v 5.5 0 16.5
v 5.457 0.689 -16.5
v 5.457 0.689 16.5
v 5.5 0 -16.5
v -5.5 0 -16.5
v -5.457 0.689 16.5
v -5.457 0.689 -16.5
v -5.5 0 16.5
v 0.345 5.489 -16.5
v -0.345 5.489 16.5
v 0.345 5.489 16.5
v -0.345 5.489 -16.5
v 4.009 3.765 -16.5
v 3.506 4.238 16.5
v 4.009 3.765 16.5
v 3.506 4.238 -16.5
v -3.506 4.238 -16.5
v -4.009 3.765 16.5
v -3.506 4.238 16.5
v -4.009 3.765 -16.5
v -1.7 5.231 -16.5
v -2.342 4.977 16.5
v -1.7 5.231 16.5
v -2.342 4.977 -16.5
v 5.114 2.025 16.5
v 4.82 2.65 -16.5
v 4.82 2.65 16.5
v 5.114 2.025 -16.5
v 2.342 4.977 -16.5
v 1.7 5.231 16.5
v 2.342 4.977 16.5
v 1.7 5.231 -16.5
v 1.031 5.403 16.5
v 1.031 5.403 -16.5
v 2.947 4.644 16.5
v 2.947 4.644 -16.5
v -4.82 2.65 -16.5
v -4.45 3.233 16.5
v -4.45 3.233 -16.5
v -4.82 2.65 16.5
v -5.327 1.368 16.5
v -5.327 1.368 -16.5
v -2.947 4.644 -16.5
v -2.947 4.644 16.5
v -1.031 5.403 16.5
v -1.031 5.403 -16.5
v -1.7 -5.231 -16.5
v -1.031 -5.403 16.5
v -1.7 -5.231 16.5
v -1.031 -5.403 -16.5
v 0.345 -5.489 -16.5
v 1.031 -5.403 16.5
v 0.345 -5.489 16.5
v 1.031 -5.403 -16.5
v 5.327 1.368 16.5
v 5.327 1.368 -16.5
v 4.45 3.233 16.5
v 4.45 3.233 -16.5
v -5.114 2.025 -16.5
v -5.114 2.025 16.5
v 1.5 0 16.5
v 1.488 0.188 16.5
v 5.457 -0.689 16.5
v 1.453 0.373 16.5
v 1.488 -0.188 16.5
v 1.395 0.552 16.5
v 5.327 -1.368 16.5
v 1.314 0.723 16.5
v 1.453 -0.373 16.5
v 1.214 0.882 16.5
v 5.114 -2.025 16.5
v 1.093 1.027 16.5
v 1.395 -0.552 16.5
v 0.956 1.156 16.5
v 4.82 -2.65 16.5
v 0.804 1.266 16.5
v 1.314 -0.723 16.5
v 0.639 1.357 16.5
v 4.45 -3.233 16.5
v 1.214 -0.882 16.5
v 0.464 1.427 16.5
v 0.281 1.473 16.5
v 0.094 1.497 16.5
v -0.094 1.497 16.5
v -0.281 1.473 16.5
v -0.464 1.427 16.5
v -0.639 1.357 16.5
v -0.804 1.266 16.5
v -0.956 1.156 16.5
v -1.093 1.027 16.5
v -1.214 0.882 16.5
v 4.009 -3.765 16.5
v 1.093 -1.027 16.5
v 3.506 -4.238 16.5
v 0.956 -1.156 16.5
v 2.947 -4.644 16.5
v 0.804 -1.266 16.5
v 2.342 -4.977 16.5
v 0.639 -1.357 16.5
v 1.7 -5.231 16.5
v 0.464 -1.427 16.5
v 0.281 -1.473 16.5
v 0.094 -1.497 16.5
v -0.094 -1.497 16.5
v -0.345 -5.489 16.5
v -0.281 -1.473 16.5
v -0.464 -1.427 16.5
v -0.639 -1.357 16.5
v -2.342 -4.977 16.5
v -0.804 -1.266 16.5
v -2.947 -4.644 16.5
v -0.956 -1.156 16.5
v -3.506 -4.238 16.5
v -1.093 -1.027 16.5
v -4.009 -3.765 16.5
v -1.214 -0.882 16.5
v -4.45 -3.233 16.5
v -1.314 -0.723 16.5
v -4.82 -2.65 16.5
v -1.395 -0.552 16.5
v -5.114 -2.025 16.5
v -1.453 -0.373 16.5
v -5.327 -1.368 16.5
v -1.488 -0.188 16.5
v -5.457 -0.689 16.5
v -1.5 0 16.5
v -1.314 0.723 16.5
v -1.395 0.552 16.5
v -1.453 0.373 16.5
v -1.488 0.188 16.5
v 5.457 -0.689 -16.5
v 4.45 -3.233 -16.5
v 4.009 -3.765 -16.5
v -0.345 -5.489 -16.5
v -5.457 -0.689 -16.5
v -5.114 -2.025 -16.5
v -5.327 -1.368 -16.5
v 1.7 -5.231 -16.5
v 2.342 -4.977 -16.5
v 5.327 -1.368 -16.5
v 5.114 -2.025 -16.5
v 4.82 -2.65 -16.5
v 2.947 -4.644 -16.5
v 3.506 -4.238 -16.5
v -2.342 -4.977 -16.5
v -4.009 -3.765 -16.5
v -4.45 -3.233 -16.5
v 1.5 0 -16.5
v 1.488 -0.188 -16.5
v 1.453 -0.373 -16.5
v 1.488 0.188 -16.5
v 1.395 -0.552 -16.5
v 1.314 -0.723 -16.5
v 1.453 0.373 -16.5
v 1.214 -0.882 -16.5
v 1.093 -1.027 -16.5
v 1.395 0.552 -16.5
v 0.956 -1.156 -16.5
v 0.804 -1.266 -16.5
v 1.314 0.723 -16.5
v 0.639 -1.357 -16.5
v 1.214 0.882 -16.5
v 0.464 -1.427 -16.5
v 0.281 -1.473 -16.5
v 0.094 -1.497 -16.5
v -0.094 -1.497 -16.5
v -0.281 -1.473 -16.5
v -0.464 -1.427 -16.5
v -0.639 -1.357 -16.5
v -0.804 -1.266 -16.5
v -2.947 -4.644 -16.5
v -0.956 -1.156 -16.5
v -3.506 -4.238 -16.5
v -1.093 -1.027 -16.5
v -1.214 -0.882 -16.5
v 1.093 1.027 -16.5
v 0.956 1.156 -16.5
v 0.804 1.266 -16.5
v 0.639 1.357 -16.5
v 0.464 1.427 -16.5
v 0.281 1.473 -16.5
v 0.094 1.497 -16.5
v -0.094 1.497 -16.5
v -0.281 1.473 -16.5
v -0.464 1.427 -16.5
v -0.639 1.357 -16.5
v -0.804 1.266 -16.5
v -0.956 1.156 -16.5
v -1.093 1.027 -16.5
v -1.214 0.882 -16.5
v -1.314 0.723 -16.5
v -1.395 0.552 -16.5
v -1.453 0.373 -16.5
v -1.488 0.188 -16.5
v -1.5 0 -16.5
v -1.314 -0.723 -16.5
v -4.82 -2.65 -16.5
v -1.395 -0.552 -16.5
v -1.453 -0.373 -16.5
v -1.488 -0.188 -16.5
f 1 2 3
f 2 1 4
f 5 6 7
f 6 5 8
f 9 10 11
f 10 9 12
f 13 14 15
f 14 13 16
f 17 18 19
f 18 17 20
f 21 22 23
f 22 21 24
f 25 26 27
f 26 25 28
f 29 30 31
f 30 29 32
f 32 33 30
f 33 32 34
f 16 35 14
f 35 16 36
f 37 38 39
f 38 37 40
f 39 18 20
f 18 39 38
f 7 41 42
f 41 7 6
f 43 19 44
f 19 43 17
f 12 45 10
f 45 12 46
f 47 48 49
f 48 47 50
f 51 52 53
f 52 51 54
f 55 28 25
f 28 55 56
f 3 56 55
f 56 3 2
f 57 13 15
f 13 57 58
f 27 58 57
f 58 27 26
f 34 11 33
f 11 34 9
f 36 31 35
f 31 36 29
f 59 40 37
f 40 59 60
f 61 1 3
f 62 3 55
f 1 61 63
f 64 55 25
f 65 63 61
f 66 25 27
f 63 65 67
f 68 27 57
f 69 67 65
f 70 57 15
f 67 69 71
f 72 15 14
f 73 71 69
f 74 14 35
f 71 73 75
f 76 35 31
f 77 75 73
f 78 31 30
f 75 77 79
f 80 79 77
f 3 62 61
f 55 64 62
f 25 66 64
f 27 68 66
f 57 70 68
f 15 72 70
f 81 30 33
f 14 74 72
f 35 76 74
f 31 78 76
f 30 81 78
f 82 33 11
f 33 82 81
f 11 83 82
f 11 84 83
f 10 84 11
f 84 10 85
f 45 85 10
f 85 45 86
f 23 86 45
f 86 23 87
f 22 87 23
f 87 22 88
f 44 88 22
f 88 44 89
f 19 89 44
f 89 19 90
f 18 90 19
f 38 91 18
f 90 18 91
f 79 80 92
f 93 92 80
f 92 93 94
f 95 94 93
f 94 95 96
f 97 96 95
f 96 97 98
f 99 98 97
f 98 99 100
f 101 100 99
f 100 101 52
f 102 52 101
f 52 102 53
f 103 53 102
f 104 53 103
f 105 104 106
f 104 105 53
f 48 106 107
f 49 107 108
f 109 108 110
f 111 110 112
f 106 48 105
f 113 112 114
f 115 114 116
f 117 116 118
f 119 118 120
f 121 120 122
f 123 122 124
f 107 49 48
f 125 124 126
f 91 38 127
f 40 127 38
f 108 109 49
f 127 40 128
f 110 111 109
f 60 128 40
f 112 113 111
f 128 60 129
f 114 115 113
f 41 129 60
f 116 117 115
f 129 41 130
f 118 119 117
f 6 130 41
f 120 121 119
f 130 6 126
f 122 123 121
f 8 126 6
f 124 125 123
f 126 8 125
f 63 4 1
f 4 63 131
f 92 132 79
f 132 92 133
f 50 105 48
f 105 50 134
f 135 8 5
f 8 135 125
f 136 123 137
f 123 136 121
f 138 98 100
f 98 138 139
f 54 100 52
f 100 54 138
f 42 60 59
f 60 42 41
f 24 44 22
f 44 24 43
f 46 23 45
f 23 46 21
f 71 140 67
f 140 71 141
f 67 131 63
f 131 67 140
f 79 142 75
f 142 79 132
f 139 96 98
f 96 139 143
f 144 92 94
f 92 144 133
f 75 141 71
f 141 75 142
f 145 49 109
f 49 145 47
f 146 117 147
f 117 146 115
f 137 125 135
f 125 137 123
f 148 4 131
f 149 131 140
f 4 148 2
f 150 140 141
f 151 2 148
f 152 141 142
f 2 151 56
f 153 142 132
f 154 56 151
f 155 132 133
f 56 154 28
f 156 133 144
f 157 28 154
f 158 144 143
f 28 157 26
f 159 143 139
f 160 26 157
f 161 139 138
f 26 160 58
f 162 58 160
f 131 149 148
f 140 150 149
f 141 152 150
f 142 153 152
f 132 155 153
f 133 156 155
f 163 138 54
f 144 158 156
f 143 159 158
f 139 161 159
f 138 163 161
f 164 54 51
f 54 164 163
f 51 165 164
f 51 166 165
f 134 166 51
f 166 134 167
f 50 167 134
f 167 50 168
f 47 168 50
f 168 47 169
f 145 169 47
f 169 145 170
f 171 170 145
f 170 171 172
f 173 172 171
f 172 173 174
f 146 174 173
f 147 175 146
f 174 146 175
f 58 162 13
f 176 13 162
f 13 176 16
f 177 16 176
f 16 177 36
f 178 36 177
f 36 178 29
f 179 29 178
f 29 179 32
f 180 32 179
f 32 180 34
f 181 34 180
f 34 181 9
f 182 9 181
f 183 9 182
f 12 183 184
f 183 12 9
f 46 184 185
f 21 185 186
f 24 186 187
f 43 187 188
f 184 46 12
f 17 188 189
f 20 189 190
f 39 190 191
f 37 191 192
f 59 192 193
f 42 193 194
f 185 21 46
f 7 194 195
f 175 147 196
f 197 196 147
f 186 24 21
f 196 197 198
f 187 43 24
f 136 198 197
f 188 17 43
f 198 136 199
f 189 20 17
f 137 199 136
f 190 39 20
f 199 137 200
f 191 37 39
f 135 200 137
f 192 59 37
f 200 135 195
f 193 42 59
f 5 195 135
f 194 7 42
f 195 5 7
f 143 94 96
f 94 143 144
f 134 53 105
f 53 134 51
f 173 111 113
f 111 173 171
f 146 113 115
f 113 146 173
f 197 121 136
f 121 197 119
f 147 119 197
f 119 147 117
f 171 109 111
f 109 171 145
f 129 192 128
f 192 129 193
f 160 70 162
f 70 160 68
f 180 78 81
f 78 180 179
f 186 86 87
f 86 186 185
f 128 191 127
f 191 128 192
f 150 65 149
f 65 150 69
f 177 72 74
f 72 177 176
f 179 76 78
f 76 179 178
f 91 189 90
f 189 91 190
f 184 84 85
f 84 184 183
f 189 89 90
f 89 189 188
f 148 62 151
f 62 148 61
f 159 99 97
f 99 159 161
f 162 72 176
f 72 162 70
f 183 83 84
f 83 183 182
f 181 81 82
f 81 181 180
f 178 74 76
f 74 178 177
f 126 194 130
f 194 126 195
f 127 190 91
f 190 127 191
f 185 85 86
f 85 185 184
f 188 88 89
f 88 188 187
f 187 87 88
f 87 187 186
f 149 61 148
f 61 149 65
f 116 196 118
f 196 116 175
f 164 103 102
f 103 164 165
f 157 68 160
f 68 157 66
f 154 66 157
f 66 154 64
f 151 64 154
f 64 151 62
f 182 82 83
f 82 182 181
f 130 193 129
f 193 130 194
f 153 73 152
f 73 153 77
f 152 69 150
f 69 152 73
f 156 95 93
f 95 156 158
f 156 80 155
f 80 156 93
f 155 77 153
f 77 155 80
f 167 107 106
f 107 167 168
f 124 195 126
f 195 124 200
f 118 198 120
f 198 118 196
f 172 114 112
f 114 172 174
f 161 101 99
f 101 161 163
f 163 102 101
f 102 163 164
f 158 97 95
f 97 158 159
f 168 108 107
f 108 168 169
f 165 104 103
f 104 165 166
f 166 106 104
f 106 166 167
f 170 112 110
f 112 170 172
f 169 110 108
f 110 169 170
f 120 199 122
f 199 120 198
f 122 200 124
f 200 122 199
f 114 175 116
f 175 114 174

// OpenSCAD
$fn = 50;


difference() {
	union() {
		translate(v = [0, 0, -16.5000000000]) {
			cylinder(h = 33, r = 5.5000000000);
		}
	}
	union() {
		translate(v = [0, 0, -100.0000000000]) {
			cylinder(h = 200, r = 1.5000000000);
		}
	}
}
